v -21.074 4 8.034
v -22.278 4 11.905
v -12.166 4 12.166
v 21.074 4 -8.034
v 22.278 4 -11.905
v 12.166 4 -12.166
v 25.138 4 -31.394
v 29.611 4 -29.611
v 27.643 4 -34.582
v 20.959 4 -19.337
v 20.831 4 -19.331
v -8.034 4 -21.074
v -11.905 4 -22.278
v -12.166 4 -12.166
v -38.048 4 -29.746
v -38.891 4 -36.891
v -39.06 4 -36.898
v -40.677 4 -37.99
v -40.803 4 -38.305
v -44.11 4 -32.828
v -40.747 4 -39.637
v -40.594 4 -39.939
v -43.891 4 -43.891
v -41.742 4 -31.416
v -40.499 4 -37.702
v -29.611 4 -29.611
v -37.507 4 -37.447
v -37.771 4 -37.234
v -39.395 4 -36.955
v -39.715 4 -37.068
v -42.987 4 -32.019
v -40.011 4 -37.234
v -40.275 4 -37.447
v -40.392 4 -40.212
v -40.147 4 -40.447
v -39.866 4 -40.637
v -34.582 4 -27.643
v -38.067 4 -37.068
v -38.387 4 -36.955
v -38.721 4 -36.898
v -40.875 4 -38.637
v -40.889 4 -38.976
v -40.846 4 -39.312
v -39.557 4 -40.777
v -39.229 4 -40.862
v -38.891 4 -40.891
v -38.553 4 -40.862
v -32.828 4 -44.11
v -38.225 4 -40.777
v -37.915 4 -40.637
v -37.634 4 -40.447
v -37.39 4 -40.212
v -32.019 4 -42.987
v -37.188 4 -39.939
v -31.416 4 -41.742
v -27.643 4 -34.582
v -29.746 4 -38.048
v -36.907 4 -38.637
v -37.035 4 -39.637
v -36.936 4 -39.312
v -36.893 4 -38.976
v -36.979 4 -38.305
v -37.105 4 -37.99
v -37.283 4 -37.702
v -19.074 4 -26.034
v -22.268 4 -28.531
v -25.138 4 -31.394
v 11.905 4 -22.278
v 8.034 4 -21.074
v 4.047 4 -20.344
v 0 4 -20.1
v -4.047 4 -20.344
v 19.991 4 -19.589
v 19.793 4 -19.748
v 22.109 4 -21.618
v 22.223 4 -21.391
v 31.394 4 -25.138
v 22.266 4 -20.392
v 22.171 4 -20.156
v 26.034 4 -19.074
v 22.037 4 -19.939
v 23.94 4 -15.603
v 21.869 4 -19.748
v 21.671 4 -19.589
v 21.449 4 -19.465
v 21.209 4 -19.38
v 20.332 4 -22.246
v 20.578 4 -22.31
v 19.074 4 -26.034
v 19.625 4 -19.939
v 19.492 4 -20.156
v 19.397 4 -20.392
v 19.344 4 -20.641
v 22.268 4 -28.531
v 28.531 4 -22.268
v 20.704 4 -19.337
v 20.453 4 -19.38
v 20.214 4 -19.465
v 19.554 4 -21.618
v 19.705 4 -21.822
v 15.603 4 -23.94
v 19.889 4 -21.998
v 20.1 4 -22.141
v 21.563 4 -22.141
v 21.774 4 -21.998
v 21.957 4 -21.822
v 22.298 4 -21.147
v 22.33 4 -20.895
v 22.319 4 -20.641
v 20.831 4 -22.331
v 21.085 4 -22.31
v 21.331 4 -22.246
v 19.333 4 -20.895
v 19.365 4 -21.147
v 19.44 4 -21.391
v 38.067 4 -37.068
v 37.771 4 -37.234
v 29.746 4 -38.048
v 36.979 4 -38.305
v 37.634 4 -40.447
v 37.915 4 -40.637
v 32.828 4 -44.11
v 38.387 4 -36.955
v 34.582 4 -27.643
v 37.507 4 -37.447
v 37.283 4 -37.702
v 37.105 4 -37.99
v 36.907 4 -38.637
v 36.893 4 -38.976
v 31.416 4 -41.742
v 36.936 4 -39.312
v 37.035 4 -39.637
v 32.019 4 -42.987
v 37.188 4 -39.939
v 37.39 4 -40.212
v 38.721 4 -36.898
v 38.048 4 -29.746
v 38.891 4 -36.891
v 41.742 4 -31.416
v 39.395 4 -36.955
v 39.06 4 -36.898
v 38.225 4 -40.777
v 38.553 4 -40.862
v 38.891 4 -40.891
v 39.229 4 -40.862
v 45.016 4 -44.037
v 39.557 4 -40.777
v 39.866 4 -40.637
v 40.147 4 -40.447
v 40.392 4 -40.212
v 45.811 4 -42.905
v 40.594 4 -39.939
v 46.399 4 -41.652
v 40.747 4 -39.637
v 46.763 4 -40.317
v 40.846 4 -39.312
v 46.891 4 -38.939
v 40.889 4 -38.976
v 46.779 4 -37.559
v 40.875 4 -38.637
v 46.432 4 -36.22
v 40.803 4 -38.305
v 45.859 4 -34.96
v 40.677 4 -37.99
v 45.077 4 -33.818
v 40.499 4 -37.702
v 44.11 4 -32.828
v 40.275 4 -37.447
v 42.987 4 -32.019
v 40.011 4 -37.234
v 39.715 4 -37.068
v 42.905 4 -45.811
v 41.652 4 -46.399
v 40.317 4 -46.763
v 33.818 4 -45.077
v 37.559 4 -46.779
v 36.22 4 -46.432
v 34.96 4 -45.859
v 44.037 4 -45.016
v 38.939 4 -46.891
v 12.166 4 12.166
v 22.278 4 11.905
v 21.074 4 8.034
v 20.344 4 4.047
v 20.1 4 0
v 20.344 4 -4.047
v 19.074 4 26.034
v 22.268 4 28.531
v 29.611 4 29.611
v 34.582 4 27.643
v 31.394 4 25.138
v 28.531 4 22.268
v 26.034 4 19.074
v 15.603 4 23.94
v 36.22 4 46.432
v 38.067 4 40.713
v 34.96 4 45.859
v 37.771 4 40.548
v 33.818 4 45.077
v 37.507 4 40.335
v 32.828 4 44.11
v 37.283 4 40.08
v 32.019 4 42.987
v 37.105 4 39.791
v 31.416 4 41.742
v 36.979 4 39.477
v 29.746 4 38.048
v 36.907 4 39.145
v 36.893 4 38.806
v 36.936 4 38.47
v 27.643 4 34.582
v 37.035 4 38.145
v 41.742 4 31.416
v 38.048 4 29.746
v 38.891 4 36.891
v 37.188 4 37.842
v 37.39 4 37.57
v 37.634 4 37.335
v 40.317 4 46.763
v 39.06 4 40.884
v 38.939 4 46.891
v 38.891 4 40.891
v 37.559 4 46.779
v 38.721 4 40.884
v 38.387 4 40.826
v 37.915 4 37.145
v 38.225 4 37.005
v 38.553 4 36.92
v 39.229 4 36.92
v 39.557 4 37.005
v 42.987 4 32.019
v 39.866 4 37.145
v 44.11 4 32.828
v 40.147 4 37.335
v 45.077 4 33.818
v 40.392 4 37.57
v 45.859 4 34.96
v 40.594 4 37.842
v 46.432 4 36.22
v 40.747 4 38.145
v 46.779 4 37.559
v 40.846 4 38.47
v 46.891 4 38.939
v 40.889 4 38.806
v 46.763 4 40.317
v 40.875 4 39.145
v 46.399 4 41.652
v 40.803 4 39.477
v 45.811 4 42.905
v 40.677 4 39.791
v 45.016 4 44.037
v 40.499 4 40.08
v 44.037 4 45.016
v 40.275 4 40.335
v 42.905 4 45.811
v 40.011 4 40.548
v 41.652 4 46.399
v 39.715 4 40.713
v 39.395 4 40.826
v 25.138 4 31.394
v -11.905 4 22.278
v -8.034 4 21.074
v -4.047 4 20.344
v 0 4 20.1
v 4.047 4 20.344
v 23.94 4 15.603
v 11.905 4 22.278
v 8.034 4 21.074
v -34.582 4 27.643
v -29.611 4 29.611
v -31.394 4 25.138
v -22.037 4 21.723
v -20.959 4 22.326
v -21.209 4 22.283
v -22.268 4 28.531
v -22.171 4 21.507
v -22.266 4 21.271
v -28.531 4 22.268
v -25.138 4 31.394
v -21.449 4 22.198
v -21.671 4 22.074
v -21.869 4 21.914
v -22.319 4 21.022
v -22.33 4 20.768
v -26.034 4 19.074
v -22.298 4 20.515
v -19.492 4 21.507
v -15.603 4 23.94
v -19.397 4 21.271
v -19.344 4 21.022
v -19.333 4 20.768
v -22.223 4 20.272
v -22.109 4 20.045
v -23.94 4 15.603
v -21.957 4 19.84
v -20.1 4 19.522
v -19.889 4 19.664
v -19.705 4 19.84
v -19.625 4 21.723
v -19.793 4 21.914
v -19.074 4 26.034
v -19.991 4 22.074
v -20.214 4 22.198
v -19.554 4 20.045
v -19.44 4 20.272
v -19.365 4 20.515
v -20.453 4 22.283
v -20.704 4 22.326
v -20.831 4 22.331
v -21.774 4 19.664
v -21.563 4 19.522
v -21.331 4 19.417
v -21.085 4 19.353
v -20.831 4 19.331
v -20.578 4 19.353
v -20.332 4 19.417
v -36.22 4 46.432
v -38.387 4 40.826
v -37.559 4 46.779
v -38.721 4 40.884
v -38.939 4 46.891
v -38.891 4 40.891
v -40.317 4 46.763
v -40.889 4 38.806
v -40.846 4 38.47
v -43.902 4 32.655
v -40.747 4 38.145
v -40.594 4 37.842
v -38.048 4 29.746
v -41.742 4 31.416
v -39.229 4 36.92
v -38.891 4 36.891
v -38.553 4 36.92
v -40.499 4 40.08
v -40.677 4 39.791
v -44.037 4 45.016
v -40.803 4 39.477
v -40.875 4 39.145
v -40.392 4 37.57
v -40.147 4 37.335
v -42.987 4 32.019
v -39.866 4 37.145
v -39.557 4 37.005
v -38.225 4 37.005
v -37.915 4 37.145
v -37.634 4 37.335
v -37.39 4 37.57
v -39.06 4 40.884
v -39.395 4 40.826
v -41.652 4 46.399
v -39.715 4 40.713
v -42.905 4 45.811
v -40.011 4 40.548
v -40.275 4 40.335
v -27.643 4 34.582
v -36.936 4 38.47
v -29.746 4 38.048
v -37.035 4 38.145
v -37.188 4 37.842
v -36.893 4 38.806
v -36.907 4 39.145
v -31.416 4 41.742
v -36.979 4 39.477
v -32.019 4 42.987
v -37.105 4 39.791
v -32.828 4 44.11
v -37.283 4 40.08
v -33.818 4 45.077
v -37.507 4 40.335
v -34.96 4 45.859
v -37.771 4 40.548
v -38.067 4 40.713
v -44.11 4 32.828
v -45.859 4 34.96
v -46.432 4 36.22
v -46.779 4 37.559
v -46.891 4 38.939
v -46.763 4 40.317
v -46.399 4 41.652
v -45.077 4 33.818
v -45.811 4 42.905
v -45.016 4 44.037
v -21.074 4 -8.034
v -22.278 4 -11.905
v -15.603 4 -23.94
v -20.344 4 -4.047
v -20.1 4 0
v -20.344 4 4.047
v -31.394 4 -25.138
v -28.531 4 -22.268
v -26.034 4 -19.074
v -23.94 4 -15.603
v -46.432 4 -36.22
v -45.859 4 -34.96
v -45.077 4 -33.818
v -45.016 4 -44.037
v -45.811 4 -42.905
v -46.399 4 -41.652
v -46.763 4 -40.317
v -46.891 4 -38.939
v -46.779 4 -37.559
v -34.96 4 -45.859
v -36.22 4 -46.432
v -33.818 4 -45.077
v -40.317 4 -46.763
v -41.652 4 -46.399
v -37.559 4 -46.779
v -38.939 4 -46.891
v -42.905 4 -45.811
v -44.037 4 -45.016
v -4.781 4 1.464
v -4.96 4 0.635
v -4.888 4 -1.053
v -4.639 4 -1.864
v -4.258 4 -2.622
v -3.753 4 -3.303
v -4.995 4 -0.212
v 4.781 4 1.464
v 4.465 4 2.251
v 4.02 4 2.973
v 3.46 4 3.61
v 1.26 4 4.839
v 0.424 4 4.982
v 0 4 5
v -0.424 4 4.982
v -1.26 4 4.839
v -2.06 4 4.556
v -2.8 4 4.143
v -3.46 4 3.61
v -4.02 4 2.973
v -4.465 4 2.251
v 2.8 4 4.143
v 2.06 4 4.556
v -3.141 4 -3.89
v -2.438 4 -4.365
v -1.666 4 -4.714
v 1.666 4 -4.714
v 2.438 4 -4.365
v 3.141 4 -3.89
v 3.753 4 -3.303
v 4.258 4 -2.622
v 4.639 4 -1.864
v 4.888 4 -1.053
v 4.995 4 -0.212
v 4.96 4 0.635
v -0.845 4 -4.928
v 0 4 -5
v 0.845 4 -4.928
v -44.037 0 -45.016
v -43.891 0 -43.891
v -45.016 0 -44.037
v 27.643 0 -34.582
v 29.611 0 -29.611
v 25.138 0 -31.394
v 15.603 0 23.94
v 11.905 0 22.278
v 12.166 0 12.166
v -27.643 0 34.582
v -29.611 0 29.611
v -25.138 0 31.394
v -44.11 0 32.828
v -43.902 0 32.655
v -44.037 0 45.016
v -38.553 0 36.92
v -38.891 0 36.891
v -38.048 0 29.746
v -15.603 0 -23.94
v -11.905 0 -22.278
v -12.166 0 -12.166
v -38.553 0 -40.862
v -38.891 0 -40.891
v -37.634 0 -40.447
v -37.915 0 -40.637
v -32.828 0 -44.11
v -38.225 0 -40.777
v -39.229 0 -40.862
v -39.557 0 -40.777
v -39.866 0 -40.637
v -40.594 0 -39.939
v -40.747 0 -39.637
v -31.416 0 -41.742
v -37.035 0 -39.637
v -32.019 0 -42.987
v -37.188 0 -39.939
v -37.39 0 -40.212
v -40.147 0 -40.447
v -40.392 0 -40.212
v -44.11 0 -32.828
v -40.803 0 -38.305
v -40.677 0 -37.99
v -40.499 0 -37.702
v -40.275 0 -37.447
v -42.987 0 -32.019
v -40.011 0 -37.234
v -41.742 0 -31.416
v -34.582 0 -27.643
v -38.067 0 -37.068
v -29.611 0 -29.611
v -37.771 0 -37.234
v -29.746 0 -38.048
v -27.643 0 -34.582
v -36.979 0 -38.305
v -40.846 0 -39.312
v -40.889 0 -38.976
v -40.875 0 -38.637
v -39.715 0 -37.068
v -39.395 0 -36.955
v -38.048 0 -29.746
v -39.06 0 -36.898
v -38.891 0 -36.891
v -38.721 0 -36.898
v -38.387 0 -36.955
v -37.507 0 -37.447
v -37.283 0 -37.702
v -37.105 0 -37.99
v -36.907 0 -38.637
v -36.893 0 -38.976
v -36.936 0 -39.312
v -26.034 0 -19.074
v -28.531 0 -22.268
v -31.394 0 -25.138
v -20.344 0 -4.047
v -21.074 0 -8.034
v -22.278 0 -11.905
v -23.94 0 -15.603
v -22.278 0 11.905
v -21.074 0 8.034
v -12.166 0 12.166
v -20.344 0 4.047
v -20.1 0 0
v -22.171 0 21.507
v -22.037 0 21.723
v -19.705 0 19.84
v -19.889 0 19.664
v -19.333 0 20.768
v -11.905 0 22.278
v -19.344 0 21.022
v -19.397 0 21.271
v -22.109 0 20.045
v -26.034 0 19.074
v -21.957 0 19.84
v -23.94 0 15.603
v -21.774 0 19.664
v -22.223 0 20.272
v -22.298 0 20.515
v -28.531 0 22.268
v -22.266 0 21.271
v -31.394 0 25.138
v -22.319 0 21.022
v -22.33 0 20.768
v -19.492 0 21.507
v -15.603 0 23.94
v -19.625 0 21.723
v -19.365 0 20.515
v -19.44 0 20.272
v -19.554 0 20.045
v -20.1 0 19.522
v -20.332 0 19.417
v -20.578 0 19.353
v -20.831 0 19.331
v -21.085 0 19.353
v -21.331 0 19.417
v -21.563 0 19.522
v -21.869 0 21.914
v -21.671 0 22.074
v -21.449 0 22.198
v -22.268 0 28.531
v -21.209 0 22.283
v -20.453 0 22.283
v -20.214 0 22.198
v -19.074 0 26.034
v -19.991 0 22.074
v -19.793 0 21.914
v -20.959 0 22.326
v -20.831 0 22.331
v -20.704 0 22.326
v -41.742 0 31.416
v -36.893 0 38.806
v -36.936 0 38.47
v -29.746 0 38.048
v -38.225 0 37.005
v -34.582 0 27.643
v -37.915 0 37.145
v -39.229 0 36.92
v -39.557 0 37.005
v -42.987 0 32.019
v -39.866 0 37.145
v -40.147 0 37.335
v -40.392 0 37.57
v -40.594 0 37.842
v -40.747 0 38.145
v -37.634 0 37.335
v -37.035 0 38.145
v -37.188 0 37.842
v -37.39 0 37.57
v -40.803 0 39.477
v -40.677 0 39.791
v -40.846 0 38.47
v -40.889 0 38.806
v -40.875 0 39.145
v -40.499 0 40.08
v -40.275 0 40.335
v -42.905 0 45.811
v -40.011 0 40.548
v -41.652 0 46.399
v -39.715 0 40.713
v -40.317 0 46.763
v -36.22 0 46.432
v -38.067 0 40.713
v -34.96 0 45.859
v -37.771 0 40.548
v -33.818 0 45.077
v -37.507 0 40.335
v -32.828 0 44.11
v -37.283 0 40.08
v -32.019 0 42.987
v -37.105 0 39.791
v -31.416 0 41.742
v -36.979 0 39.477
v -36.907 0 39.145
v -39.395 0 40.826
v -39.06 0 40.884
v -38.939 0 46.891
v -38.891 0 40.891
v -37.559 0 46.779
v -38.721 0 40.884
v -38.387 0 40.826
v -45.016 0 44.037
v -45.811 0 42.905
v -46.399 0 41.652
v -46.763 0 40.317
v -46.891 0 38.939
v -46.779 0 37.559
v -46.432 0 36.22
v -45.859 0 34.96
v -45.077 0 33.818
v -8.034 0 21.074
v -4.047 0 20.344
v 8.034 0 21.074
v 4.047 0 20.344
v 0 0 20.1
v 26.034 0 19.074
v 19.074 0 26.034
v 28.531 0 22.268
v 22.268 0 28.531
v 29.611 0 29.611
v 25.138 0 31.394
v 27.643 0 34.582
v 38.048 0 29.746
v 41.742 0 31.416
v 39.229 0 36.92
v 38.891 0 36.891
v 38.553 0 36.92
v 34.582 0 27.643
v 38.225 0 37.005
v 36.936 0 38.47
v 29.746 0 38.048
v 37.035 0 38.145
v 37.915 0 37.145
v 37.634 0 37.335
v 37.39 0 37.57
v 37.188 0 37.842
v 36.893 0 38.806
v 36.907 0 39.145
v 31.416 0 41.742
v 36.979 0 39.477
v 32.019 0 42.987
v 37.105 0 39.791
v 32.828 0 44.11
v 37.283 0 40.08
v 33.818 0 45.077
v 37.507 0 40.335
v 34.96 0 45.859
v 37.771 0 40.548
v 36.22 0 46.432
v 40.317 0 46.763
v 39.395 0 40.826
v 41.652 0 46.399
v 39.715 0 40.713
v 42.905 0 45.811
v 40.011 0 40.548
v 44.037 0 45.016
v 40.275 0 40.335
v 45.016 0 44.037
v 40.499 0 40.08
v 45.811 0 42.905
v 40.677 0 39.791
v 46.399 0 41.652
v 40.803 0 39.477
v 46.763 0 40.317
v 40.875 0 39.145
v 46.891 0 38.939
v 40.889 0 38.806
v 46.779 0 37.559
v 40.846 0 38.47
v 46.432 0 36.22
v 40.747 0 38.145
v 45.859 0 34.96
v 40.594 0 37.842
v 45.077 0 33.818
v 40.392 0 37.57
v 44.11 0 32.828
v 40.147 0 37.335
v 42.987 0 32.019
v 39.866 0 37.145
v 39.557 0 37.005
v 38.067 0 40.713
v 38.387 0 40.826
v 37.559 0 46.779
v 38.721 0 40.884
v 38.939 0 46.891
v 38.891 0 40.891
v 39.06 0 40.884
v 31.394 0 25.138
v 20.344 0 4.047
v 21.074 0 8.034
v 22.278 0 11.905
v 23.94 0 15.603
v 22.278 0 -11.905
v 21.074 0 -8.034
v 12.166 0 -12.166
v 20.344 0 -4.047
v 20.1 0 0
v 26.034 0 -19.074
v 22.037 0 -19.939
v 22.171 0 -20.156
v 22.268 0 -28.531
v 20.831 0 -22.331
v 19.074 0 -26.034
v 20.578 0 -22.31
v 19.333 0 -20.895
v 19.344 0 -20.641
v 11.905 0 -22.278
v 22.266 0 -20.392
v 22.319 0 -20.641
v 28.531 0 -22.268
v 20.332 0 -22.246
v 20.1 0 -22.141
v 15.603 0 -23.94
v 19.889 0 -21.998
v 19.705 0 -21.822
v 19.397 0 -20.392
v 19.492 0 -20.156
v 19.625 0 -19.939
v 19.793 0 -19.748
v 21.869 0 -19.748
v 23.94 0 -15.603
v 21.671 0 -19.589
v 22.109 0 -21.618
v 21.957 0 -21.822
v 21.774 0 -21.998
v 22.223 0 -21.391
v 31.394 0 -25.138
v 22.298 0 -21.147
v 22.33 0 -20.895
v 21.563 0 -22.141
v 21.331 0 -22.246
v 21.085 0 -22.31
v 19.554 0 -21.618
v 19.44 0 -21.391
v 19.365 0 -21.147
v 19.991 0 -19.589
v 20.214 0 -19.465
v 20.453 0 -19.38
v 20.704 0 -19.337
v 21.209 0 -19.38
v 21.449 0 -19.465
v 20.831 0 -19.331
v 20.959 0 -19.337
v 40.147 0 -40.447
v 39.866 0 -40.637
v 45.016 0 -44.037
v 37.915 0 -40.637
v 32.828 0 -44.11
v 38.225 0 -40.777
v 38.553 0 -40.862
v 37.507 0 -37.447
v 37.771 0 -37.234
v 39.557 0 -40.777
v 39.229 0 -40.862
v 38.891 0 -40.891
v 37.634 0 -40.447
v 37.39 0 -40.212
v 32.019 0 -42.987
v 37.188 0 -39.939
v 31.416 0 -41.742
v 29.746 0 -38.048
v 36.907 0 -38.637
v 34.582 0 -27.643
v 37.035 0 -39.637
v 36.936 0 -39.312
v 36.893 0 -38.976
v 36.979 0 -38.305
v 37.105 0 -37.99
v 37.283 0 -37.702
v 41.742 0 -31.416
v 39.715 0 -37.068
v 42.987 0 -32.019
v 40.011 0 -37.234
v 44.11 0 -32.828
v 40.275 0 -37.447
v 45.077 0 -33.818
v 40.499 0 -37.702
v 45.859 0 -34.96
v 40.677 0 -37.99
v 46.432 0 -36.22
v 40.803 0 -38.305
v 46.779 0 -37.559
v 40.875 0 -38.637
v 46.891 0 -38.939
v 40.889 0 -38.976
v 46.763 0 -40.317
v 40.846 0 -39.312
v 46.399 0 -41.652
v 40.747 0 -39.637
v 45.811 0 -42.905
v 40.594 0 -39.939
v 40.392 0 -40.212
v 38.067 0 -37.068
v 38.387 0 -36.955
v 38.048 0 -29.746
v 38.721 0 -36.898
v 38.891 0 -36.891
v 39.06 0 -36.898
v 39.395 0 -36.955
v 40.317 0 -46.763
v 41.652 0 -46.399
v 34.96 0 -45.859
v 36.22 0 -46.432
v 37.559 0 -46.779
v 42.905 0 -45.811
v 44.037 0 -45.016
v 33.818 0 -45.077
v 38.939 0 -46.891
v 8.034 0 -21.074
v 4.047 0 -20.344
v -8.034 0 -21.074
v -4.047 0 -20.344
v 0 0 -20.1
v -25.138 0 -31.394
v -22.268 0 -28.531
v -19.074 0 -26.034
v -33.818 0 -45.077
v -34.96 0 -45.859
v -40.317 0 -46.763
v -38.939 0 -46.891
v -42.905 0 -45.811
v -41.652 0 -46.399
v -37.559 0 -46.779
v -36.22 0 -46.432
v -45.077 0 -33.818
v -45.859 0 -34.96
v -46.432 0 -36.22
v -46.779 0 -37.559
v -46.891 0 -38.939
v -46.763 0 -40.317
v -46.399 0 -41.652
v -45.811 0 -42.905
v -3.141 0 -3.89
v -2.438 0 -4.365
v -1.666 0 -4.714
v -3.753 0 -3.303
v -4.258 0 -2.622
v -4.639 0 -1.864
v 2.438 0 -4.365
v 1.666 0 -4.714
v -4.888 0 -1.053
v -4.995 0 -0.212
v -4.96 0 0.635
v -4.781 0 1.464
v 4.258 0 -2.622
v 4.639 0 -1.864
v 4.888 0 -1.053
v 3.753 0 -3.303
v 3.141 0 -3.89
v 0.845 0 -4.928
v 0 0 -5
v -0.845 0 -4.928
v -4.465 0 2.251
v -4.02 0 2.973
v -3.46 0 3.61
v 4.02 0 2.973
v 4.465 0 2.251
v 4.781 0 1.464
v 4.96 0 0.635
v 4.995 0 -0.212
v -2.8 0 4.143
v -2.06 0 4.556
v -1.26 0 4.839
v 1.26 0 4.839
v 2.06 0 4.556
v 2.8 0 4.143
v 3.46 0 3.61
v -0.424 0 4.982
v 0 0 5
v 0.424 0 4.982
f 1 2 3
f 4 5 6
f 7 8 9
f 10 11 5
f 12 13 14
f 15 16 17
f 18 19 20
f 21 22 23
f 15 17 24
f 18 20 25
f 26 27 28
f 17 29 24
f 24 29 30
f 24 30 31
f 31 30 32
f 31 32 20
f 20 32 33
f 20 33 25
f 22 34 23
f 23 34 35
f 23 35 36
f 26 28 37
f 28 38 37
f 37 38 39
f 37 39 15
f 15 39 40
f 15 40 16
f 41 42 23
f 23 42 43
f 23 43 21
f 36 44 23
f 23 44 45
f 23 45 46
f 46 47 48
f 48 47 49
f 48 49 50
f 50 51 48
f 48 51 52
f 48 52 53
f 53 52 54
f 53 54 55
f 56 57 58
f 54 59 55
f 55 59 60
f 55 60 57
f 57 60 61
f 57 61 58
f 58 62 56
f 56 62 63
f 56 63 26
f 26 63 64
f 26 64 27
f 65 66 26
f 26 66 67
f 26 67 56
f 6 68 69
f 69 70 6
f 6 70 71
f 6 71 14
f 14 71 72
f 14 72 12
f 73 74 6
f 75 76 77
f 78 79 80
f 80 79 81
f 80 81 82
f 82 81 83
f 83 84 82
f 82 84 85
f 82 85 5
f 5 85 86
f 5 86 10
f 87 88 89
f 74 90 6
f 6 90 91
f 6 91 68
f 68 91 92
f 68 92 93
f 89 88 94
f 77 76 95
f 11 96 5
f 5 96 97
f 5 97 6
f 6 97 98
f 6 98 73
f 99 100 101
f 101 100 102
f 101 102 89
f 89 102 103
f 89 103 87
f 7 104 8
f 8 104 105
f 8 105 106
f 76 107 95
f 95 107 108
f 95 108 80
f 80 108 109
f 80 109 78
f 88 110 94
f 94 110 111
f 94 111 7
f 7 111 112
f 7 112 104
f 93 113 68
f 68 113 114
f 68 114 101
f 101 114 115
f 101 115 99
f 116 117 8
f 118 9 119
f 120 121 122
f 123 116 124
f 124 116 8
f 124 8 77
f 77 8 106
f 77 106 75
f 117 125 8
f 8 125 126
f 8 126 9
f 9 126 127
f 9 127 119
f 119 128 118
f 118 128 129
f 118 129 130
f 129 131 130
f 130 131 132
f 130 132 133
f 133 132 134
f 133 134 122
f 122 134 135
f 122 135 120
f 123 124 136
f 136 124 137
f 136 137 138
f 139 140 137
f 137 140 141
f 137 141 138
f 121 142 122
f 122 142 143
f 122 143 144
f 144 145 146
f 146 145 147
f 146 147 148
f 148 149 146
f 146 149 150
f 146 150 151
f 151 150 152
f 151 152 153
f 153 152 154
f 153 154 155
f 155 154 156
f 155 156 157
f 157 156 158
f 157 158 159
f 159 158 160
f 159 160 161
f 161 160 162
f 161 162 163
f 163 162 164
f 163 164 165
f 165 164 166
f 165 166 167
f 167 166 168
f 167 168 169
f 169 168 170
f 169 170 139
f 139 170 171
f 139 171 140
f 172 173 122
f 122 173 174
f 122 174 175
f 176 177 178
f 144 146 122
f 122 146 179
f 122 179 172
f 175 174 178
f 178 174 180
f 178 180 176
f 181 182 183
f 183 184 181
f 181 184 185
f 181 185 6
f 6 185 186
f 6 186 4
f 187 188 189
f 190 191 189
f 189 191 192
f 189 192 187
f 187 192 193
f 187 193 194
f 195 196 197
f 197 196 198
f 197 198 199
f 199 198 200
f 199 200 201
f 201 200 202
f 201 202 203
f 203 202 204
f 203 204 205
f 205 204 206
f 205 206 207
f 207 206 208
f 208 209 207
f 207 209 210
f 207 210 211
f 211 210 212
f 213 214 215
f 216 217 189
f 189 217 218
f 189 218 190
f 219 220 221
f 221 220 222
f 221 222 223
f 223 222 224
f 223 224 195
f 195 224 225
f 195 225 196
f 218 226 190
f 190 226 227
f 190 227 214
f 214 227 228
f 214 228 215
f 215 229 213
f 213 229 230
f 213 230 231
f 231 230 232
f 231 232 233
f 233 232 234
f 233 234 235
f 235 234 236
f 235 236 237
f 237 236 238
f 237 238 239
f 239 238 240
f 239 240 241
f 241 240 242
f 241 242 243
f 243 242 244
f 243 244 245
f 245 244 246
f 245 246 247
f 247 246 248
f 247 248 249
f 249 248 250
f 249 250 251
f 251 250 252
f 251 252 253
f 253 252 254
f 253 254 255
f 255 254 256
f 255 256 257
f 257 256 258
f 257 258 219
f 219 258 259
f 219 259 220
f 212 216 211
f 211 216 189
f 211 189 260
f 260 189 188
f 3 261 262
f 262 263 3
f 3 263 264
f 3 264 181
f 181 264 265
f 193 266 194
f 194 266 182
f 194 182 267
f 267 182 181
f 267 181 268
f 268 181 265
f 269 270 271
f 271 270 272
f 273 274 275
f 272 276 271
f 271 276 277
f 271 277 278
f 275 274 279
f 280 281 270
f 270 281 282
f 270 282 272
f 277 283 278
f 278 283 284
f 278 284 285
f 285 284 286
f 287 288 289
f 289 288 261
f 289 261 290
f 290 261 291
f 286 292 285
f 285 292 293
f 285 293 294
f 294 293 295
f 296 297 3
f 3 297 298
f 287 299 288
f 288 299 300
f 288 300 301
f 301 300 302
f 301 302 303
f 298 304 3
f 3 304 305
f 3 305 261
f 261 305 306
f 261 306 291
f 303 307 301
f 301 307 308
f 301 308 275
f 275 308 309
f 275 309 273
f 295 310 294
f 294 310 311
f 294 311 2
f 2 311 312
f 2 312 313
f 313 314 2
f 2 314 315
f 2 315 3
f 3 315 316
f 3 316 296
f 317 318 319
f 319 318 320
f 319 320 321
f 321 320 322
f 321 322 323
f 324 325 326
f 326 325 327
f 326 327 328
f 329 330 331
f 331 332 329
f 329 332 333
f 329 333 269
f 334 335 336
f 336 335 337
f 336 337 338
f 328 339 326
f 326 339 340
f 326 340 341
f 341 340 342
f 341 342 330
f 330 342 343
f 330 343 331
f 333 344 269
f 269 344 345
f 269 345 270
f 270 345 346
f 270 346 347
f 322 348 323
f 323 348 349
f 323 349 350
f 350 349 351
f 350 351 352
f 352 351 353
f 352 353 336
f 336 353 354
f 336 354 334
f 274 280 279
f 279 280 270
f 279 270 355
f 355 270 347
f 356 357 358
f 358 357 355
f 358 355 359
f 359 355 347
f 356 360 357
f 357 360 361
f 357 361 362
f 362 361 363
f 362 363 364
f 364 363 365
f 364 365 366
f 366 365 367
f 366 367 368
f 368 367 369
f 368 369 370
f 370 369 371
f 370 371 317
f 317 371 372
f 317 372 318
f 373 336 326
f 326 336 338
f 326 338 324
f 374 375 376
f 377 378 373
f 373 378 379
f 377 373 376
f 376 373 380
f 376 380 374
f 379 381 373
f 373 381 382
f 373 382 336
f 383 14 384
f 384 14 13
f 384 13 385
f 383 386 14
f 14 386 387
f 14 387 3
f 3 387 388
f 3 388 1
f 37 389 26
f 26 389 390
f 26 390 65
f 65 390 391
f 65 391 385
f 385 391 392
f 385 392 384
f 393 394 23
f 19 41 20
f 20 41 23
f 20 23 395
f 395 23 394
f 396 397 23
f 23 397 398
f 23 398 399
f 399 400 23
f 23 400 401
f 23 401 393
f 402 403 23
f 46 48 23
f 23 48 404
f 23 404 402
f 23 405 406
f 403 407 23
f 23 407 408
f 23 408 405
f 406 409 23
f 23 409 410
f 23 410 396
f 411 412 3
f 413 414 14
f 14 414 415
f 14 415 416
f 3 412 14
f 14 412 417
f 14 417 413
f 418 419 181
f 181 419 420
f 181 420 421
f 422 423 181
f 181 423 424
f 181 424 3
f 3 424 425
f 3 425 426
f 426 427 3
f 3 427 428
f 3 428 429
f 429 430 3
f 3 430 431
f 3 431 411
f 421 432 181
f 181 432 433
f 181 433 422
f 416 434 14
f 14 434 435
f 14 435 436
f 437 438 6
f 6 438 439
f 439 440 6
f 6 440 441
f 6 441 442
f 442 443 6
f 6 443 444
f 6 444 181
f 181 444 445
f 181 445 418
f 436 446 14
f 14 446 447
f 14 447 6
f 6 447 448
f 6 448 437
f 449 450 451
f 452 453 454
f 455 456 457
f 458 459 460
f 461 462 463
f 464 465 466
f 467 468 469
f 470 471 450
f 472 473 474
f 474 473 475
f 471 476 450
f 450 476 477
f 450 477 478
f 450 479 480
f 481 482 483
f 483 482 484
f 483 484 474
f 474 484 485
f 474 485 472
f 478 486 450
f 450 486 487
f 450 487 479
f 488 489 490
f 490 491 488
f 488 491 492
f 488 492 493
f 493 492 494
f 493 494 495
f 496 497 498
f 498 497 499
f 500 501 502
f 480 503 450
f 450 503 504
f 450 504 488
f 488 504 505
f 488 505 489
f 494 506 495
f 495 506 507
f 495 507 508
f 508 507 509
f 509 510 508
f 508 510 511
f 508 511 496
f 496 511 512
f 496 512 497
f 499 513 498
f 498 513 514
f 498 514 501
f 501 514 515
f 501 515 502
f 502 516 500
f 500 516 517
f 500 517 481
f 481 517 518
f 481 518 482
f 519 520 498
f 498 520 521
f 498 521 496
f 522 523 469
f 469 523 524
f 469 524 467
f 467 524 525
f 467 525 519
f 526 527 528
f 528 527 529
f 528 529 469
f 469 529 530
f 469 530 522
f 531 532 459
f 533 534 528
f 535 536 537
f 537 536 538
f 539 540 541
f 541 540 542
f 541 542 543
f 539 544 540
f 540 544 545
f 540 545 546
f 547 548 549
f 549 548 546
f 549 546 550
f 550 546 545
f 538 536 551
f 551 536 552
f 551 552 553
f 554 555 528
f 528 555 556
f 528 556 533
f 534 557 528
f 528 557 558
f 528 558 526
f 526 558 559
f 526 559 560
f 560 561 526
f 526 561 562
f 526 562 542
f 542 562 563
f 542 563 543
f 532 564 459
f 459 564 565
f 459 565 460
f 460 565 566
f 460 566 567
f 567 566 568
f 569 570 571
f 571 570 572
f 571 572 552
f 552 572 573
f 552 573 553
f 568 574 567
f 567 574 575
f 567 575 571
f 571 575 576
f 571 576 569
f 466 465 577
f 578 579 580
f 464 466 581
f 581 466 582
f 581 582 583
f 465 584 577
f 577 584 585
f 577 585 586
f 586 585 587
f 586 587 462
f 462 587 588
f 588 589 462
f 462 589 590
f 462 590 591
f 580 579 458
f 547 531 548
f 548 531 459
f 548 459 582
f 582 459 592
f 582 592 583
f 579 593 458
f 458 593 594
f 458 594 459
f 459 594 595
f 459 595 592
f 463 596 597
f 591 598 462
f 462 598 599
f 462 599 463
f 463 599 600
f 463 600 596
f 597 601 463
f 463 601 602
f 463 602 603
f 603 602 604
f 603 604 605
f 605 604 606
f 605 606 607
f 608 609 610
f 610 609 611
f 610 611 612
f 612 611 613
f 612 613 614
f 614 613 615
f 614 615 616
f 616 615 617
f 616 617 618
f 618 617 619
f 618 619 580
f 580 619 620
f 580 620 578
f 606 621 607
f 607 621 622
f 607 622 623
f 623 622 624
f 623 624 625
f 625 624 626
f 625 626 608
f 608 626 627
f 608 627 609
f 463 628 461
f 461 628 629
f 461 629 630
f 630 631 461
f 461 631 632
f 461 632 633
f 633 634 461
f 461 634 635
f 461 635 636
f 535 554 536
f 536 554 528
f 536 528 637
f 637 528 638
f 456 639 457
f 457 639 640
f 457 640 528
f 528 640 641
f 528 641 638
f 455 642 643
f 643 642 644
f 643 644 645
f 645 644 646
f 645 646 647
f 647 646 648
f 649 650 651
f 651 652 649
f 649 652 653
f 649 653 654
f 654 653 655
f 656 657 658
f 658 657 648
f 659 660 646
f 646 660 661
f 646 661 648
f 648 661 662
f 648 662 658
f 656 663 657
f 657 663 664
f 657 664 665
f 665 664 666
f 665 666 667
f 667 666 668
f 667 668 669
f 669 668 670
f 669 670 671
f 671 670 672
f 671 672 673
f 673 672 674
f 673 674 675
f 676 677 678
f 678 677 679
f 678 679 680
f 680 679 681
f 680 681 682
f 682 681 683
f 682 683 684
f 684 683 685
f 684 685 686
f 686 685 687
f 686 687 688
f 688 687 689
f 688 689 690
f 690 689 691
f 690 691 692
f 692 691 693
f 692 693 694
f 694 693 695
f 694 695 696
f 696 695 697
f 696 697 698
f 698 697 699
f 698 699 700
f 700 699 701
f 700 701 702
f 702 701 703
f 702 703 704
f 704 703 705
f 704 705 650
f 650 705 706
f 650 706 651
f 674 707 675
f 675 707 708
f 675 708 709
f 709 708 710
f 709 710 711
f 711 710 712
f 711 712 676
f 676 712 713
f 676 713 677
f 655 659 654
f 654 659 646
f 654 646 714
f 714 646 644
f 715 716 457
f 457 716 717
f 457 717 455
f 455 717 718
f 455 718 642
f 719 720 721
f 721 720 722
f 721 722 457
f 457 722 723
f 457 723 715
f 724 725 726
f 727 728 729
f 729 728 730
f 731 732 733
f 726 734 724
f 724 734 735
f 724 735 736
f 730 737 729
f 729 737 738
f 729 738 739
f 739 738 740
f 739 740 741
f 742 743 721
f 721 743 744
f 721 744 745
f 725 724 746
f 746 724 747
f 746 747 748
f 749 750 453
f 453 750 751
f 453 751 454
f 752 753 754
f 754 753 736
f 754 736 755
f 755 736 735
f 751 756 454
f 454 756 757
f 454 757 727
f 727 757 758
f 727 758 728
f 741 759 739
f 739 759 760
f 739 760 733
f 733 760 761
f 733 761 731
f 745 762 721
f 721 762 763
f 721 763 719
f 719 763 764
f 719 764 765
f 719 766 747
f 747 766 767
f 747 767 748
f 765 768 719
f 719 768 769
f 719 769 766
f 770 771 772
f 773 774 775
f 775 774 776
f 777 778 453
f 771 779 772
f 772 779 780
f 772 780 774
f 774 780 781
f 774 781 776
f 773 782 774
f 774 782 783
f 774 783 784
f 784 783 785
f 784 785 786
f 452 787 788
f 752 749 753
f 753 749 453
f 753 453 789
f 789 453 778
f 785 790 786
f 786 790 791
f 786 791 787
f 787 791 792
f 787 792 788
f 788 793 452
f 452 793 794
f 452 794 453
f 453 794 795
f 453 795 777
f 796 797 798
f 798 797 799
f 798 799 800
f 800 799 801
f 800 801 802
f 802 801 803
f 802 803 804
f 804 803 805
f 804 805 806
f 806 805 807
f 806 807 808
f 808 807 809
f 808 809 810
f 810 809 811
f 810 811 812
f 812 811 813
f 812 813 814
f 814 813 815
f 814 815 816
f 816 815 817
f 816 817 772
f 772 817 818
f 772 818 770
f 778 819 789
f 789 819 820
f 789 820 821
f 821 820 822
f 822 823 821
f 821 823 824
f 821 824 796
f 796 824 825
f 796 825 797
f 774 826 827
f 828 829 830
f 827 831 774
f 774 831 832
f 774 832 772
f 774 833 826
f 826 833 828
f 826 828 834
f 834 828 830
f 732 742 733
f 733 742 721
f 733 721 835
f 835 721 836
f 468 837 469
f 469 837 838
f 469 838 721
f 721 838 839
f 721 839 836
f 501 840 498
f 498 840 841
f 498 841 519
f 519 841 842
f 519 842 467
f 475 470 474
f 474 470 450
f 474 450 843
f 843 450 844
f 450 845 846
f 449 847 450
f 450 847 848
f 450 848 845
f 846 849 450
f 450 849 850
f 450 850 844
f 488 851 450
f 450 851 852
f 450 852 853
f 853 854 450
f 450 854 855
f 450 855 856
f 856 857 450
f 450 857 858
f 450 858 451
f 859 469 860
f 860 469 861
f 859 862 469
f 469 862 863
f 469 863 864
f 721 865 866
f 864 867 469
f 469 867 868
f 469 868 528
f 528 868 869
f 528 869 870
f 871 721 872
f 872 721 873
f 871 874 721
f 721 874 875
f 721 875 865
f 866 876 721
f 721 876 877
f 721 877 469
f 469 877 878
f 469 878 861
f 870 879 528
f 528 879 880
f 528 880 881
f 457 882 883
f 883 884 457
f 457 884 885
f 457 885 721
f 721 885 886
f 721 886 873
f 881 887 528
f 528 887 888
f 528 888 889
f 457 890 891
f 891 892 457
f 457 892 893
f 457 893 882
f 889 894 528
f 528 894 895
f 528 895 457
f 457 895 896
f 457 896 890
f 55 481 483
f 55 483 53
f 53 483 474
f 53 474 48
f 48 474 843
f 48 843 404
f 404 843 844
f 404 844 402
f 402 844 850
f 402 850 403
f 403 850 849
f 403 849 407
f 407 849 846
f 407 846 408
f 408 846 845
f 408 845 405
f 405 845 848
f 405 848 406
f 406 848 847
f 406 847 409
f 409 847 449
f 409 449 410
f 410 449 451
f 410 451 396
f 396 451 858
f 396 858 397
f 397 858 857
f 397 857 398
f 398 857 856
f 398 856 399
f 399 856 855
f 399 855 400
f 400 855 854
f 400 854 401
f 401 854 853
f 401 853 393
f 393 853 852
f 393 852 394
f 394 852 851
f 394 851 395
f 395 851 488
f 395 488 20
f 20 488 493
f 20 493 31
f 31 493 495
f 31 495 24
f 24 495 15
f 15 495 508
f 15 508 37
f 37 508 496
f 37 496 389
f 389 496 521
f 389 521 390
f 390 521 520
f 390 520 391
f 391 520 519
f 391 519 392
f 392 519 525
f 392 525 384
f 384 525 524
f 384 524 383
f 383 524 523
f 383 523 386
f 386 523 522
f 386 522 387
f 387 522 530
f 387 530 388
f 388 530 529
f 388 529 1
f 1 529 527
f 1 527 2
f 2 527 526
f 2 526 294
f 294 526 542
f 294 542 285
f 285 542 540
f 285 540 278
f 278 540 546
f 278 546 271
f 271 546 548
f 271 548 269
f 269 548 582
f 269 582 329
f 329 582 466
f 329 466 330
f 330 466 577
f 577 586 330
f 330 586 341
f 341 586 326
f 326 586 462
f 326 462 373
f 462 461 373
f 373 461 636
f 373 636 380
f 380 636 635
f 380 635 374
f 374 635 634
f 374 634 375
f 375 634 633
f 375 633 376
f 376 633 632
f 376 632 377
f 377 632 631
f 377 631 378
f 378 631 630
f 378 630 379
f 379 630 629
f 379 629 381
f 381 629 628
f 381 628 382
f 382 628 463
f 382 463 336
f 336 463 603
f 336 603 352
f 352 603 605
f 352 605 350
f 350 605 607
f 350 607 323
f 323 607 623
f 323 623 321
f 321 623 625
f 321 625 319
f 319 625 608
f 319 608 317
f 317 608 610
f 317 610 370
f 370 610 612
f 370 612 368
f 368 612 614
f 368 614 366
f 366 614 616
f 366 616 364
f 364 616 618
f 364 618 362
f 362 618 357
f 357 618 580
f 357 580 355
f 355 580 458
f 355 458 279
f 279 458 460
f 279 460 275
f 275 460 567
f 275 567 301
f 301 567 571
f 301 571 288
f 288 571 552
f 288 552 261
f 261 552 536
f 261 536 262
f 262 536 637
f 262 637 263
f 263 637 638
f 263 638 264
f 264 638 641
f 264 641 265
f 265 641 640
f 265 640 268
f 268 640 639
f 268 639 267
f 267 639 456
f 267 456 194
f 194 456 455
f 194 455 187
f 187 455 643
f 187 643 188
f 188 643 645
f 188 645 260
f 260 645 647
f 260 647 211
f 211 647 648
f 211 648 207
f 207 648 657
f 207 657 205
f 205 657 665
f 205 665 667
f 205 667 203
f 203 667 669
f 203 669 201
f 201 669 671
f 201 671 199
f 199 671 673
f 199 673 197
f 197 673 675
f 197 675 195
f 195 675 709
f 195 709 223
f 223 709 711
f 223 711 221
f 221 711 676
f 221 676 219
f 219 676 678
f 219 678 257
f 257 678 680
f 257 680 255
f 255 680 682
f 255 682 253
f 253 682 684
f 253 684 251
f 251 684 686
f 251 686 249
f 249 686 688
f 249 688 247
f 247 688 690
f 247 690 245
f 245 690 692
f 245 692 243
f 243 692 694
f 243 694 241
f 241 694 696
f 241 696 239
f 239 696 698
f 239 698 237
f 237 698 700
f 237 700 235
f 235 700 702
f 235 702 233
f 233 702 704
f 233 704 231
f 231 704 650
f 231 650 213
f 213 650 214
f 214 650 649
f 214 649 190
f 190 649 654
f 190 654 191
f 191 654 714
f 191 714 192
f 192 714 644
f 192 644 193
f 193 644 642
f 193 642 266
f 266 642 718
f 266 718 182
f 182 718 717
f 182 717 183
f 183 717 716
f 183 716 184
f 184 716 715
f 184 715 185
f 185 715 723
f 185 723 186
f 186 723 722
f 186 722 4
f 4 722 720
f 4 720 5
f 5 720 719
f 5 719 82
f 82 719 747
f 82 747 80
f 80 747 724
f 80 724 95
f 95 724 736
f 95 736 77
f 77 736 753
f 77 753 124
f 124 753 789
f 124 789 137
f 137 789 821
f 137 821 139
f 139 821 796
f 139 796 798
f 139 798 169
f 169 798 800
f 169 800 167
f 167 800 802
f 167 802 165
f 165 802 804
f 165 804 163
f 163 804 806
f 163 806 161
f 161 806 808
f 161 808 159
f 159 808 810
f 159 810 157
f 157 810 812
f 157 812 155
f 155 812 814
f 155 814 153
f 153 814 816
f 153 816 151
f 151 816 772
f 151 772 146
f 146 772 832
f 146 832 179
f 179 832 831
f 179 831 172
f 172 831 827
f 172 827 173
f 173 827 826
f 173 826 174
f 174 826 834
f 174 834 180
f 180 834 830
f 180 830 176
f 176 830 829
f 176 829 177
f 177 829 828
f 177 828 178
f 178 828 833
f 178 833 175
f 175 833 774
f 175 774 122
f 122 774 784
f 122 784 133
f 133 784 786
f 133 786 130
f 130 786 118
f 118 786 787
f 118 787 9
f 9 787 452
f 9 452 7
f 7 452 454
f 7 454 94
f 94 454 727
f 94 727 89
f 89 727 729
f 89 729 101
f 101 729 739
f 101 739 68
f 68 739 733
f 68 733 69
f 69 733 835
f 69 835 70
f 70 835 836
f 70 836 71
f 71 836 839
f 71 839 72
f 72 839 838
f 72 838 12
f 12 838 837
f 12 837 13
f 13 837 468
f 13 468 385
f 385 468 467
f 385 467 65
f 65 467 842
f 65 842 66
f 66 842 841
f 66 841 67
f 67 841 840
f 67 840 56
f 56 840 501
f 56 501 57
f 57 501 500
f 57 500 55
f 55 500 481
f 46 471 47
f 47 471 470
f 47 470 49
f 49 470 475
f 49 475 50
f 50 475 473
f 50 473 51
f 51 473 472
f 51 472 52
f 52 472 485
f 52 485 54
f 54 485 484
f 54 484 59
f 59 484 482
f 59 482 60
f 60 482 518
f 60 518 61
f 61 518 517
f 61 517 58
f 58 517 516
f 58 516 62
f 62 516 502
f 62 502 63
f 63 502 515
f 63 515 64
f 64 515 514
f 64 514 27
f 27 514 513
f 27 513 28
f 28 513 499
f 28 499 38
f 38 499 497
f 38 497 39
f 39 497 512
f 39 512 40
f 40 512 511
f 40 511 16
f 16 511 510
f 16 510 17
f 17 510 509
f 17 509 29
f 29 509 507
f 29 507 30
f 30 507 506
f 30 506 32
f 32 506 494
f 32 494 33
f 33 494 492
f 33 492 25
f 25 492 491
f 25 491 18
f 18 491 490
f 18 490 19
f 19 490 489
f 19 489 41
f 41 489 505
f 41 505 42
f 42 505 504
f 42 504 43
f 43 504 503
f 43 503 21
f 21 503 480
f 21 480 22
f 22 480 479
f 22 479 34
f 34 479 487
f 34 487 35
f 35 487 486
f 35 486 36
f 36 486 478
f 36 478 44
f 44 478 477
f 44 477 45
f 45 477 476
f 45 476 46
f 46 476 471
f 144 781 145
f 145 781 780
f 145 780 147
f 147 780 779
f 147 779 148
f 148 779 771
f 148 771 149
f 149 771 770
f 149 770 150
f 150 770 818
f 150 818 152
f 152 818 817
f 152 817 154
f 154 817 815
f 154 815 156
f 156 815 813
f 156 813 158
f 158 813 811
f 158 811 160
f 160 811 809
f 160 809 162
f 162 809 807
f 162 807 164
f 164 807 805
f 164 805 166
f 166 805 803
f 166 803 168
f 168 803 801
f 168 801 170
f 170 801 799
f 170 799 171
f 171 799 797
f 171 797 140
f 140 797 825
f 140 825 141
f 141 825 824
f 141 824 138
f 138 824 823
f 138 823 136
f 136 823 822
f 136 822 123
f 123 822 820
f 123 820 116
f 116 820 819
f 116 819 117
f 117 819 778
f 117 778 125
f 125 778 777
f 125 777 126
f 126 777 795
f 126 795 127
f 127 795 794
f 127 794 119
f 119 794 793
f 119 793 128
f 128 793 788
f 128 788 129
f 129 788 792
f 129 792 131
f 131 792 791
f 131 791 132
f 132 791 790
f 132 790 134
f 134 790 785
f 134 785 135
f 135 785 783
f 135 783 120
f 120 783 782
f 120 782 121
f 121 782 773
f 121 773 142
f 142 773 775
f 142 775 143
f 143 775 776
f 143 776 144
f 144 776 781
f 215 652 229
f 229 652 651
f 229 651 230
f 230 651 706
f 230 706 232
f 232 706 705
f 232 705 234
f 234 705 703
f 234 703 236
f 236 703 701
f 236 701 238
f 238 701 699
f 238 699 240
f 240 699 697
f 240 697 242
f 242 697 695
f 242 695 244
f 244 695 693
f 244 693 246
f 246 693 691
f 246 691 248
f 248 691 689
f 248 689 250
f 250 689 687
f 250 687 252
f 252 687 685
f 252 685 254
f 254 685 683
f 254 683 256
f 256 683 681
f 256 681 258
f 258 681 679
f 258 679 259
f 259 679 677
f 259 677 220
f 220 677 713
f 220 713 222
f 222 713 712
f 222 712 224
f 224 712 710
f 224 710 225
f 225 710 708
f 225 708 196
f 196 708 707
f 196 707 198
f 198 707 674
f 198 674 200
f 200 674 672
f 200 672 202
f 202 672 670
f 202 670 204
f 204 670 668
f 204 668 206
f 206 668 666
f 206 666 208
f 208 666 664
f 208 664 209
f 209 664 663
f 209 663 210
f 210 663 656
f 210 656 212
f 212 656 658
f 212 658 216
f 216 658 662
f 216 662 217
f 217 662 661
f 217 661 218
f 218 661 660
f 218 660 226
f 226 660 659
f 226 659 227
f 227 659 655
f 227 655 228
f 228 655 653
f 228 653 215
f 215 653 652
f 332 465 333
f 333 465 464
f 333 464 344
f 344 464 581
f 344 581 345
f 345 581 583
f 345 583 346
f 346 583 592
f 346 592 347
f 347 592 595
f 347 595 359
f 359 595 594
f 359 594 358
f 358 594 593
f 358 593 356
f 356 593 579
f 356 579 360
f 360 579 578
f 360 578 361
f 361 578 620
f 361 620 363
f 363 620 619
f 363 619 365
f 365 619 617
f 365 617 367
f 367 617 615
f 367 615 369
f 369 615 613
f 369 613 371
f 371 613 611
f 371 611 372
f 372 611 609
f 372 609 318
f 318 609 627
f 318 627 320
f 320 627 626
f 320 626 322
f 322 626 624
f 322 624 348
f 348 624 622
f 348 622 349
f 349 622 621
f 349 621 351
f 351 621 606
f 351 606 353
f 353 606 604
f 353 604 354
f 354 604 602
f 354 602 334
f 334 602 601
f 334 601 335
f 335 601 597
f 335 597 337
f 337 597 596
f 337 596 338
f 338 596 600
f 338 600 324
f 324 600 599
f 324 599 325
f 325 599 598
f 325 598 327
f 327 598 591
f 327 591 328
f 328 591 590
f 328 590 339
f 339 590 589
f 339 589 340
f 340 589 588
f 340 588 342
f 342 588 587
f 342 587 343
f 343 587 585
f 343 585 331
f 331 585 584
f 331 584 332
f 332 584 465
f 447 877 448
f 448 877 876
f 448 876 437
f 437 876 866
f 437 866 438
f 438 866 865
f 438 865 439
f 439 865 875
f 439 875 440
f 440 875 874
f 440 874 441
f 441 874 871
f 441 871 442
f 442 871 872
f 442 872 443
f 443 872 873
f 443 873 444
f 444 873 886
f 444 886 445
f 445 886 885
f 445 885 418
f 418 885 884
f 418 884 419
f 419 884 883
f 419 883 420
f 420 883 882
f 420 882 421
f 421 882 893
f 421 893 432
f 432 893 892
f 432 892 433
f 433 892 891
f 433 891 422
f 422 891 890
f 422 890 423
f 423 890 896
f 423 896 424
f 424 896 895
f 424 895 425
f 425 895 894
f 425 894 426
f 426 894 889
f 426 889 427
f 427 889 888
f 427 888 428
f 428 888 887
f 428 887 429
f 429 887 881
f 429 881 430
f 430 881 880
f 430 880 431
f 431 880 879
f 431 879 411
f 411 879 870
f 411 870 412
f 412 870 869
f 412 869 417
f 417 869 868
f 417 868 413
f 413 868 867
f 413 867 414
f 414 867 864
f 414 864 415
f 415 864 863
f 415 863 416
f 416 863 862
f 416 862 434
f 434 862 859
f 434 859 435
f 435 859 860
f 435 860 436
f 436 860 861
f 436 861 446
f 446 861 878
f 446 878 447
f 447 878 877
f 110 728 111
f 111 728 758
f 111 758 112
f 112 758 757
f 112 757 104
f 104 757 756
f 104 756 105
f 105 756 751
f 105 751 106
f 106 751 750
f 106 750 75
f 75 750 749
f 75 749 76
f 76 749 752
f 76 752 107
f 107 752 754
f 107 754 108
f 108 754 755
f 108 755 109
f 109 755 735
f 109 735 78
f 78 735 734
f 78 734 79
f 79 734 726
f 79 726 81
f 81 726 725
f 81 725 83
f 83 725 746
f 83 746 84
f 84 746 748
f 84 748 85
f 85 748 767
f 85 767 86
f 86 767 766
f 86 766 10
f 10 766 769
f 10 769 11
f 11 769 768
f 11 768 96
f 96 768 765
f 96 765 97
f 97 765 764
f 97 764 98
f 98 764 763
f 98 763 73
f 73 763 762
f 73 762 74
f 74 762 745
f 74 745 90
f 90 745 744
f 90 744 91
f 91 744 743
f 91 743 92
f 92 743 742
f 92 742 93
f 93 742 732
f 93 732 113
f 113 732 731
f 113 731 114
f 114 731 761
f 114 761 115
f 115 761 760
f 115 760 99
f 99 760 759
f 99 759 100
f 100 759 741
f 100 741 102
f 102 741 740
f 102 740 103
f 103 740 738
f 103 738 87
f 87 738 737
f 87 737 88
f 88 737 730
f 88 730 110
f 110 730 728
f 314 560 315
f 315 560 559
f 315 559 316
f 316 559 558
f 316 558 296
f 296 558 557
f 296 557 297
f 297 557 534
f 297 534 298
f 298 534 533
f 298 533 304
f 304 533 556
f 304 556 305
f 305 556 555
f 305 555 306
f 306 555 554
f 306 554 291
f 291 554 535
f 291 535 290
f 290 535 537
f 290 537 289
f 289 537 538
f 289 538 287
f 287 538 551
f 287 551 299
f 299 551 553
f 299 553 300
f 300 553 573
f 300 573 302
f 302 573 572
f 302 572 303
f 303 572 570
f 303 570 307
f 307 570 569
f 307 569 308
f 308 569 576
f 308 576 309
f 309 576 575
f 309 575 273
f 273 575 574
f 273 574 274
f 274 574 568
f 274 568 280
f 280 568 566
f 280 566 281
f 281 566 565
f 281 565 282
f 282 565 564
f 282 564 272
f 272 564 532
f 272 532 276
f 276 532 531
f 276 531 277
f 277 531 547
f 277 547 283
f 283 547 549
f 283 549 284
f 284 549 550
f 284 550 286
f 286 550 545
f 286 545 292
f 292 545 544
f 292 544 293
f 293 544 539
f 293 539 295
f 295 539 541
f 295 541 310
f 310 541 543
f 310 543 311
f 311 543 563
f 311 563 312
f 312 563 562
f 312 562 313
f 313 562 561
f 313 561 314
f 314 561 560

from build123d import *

# Parameters (mm, degrees)
SKETCH1_R           = 2
SKETCH1_R_2         = 5
SKETCH1_R_3         = 1.5
BOSS_EXTRUDE1_DEPTH = 4


with BuildPart() as part:
    # Sketch1 → Boss-Extrude1 (new body)
    with BuildSketch(Plane(origin=(0, 0, 0), x_dir=(1, 0, 0), z_dir=(0, 1, 0))):
        with BuildLine():
            ThreePointArc((-31.416051551, 41.741670191), (0, 20.1), (31.416051551, 41.741670191))
            ThreePointArc((31.416051551, 41.741670191), (44.547727215, 44.547727215), (41.741670191, 31.416051551))
            ThreePointArc((41.741670191, 31.416051551), (20.1, 0), (41.741670191, -31.416051551))
            ThreePointArc((41.741670191, -31.416051551), (44.547727215, -44.547727215), (31.416051551, -41.741670191))
            ThreePointArc((31.416051551, -41.741670191), (0, -20.1), (-31.416051551, -41.741670191))
            ThreePointArc((-31.416051551, -41.741670191), (-44.547727215, -44.547727215), (-41.741670191, -31.416051551))
            ThreePointArc((-41.741670191, -31.416051551), (-20.1, 0), (-41.741670191, 31.416051551))
            ThreePointArc((-41.741670191, 31.416051551), (-44.547727215, 44.547727215), (-31.416051551, 41.741670191))
        make_face()
        with Locations(Location((-38.890872965, 38.890872965, 0), (0, 0, 270))):
            Circle(SKETCH1_R, mode=Mode.SUBTRACT)
        with Locations(Location((38.890872965, 38.890872965, 0), (0, 0, 270))):
            Circle(SKETCH1_R, mode=Mode.SUBTRACT)
        with Locations(Location((38.890872965, -38.890872965, 0), (0, 0, 270))):
            Circle(SKETCH1_R, mode=Mode.SUBTRACT)
        with Locations(Location((-38.890872965, -38.890872965, 0), (0, 0, 270))):
            Circle(SKETCH1_R, mode=Mode.SUBTRACT)
        with Locations(Location((0, 0, 0), (0, 0, 270))):
            Circle(SKETCH1_R_2, mode=Mode.SUBTRACT)
        with Locations(Location((20.831365774, 20.831365774, 0), (0, 0, 270))):
            Circle(SKETCH1_R_3, mode=Mode.SUBTRACT)
        with Locations(Location((-20.831365774, -20.831365774, 0), (0, 0, 270))):
            Circle(SKETCH1_R_3, mode=Mode.SUBTRACT)
    extrude(amount=BOSS_EXTRUDE1_DEPTH)


solid = part.part
